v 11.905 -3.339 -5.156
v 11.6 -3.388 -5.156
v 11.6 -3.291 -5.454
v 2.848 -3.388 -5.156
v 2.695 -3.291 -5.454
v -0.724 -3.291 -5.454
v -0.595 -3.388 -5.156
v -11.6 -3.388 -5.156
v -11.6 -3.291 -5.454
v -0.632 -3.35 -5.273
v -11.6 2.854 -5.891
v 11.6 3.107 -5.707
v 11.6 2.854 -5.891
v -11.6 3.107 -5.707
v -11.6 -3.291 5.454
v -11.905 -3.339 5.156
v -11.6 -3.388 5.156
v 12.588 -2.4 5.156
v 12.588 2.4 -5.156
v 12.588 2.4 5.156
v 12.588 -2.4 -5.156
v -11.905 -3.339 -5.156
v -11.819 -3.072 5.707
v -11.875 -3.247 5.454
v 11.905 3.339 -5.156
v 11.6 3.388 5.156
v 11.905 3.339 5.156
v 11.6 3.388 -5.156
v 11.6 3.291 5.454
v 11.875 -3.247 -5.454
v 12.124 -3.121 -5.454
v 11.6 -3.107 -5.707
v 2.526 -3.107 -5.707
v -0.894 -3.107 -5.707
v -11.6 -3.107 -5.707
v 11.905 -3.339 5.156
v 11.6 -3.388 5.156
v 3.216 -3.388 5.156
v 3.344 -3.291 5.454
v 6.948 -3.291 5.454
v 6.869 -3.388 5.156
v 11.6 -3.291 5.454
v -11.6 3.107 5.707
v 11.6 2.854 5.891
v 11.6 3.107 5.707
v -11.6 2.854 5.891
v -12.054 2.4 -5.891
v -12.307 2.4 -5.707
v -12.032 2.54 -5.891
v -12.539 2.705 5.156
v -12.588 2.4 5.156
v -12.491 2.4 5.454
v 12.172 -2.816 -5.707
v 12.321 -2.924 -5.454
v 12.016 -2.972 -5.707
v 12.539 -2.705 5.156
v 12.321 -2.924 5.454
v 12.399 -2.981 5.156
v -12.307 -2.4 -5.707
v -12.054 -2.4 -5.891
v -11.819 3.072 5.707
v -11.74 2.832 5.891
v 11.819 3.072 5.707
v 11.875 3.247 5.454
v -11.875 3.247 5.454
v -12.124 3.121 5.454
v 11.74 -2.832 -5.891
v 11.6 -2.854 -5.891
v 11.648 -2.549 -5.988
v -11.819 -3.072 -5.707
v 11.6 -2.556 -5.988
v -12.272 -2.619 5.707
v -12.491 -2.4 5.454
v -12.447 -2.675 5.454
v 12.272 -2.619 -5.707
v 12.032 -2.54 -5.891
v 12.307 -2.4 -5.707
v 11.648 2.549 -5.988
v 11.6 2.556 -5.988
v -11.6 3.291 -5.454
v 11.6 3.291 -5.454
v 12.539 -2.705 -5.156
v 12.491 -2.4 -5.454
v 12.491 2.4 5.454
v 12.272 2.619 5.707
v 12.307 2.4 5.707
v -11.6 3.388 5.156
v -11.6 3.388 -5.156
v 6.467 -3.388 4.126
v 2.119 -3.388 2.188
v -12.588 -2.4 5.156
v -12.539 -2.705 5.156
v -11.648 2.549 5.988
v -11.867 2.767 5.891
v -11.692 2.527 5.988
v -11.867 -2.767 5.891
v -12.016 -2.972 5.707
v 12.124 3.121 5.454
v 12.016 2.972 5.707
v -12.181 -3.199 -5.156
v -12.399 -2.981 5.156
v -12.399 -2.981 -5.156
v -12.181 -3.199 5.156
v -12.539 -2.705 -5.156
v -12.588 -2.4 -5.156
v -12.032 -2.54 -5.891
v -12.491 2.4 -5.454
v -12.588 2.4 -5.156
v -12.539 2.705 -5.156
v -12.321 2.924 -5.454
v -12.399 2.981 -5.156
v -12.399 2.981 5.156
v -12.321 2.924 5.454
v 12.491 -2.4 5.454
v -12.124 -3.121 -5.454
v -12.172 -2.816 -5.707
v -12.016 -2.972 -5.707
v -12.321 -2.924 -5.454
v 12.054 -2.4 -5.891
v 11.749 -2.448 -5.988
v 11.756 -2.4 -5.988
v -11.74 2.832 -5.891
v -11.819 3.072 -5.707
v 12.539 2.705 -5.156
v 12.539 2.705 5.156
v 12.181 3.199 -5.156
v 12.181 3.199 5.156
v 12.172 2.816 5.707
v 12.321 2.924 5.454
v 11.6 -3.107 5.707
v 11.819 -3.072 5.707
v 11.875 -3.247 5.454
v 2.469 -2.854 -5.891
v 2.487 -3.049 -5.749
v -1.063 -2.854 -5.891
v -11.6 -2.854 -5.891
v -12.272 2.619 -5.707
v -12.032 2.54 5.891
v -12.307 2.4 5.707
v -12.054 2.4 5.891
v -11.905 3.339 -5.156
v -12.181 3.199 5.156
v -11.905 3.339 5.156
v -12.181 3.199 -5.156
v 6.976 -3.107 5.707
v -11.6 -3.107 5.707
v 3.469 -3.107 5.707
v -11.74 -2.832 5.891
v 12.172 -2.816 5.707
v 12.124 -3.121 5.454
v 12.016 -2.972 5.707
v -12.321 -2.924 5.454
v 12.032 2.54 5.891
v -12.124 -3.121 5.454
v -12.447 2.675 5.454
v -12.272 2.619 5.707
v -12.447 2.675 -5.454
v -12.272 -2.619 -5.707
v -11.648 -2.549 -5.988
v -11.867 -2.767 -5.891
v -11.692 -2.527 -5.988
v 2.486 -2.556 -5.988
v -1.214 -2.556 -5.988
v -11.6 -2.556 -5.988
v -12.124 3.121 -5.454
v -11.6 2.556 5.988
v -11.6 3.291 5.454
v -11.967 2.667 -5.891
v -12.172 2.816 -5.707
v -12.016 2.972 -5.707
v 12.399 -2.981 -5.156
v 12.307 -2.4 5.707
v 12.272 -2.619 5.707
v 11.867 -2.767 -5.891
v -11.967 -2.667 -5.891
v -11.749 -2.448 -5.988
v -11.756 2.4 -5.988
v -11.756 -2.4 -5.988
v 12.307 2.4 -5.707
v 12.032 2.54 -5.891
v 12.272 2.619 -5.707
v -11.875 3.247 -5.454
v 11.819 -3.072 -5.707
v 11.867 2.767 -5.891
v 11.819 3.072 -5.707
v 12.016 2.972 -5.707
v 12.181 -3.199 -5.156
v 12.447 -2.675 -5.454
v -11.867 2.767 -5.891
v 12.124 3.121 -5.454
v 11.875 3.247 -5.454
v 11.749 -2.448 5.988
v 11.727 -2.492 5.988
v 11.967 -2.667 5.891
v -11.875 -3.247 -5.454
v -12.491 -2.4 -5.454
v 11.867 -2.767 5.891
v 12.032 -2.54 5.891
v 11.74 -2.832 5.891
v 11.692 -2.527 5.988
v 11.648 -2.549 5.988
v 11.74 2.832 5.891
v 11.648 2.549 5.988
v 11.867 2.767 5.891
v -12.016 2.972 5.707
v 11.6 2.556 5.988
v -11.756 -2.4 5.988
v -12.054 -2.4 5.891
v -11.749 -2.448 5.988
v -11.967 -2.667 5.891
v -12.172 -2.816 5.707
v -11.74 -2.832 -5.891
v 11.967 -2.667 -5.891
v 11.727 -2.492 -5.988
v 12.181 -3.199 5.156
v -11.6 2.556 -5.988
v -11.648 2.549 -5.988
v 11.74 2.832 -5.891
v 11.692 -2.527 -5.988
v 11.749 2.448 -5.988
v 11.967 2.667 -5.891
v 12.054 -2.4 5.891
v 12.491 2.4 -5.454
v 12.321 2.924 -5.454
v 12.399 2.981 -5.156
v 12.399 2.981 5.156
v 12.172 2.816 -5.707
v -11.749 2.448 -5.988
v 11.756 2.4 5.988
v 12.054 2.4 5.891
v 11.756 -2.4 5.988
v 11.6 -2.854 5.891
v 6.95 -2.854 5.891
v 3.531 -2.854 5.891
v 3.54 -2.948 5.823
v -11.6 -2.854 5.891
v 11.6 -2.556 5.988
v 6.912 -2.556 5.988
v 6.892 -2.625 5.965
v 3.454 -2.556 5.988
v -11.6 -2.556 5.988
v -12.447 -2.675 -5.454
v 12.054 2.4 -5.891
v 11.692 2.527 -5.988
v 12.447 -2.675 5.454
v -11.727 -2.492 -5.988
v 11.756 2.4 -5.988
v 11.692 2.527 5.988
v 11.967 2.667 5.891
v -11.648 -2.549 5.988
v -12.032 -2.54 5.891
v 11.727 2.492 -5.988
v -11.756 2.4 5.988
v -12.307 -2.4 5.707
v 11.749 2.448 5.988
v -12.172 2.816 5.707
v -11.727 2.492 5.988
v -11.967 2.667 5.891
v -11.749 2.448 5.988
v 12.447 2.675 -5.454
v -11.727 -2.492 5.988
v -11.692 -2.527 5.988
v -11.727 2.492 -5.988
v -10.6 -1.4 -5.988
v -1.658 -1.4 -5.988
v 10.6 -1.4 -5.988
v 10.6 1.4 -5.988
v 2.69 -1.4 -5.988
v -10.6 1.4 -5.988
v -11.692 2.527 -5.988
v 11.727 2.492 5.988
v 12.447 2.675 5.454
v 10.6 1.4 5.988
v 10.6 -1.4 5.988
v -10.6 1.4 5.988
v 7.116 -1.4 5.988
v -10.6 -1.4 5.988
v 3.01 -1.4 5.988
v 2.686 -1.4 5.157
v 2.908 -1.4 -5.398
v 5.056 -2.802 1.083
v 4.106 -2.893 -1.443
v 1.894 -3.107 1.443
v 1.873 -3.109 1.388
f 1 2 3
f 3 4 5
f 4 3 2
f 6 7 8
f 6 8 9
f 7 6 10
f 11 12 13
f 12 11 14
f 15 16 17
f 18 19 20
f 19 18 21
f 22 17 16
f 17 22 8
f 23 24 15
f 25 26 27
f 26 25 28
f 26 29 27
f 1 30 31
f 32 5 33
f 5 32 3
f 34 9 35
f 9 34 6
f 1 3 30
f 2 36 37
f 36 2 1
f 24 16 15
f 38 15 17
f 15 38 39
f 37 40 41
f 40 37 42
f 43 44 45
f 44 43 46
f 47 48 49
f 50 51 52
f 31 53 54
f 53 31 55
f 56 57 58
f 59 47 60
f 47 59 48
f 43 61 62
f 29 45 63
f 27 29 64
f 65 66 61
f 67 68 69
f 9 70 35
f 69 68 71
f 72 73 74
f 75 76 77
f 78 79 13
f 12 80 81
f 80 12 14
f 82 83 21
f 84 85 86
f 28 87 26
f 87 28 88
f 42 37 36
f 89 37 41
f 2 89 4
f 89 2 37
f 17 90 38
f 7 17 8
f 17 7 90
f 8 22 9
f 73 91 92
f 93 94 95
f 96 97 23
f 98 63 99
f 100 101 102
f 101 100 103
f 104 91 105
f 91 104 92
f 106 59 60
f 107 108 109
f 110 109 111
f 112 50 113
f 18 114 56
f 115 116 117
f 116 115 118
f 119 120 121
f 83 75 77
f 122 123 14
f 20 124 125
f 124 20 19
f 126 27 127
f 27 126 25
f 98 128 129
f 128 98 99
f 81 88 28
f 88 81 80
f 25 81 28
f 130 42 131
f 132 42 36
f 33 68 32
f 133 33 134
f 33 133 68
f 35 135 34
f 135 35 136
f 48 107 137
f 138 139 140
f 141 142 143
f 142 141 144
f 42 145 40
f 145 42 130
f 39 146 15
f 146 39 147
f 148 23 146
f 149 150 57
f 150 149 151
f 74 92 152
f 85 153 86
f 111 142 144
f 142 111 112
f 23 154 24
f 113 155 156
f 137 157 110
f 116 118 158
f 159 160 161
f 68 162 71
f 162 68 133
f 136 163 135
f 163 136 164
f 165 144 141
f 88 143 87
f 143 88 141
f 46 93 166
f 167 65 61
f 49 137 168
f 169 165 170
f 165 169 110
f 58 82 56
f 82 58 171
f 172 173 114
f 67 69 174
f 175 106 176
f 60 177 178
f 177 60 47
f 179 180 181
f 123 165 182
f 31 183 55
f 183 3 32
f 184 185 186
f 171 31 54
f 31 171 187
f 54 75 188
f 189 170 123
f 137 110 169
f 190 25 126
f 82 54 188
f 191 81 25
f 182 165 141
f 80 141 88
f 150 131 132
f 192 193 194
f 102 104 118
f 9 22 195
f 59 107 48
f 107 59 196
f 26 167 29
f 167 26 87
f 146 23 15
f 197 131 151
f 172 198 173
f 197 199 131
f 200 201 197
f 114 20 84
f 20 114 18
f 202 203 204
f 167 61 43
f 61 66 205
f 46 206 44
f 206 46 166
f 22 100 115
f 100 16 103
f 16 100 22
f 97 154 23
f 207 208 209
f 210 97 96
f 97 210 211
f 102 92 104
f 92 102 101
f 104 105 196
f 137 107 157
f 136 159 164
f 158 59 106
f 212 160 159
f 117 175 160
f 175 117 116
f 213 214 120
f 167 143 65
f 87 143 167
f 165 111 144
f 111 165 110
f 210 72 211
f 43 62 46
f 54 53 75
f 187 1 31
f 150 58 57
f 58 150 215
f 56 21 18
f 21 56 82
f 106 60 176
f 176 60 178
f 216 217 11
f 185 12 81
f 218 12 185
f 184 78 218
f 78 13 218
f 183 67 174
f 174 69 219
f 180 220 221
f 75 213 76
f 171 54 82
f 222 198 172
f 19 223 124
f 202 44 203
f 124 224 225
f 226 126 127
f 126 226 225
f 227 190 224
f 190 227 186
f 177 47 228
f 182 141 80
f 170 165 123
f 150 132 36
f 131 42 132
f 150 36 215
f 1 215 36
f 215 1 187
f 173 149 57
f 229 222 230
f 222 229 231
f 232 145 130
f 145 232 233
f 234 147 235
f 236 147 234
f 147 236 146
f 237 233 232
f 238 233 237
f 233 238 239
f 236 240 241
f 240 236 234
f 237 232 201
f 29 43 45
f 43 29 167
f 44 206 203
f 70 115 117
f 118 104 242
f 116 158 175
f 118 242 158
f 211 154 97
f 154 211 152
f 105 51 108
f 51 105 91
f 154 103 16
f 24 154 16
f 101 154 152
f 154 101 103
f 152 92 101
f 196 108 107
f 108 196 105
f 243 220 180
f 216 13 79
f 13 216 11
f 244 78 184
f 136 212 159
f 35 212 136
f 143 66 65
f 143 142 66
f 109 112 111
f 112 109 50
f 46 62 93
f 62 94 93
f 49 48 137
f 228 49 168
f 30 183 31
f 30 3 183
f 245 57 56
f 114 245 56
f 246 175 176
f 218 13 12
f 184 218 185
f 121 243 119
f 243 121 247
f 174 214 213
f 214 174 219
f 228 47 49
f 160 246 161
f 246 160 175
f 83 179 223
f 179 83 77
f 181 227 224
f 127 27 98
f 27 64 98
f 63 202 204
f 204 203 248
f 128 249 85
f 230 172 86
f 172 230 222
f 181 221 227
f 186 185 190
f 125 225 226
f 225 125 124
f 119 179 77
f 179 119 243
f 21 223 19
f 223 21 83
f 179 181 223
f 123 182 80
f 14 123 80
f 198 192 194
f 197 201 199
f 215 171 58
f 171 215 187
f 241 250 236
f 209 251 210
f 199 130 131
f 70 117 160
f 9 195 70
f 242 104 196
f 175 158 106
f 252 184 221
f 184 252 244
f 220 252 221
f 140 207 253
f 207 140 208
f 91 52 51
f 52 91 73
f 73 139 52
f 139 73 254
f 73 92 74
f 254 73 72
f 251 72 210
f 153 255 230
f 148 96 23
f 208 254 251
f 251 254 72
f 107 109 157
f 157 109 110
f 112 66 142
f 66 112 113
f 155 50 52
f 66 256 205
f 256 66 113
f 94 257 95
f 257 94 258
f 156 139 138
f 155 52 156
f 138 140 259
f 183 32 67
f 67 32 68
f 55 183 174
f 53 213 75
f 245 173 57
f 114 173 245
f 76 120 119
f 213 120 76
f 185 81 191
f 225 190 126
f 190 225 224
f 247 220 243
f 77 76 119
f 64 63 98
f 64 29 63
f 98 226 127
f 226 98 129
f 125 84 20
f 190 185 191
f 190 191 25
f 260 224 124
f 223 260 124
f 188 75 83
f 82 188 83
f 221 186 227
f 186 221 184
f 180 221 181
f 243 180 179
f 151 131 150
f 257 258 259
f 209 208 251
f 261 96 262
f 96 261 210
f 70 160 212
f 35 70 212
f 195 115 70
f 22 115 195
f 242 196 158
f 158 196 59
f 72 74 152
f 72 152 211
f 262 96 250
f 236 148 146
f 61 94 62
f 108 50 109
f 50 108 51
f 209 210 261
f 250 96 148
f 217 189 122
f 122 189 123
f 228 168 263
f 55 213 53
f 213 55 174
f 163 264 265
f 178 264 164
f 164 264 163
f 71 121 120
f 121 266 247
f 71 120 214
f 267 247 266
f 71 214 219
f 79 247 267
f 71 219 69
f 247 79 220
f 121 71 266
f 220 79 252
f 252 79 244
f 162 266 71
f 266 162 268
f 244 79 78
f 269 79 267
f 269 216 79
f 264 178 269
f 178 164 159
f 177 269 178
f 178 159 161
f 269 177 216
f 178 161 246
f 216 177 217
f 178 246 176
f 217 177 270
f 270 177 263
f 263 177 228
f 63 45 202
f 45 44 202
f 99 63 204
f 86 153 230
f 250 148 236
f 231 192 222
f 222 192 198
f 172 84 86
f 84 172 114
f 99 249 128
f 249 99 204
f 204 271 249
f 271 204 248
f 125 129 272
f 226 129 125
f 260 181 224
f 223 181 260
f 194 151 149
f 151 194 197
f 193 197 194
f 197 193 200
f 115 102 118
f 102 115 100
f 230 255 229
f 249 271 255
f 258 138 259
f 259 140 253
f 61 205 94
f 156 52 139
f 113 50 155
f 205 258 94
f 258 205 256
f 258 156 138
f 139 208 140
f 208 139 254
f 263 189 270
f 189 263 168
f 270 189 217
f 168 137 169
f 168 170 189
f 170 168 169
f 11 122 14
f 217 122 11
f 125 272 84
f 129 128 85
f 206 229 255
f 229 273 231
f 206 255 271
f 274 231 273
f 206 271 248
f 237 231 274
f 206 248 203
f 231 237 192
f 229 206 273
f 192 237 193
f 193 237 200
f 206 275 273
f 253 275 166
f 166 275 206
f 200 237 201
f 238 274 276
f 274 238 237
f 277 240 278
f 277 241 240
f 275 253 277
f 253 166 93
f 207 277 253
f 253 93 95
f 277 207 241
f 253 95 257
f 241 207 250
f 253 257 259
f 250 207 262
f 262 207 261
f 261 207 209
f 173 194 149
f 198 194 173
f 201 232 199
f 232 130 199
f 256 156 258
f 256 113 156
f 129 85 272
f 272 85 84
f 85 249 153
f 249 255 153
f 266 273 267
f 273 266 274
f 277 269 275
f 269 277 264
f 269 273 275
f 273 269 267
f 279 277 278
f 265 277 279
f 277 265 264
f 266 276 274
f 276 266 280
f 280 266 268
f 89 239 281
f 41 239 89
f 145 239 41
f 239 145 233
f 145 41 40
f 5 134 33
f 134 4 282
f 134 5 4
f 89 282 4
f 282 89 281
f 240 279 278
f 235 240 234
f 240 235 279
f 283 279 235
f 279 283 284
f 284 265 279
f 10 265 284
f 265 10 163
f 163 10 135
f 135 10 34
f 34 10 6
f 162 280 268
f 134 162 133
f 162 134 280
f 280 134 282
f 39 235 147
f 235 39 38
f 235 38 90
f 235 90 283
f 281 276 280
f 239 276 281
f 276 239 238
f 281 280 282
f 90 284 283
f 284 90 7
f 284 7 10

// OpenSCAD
x=20.5 + 0.7;
y=2.5 + 0.3;
z=10;

difference() {
    // body
    minkowski() {
        cube([x+2, y+2, z], center=true);
        sphere(r=1, $fn=20);
    }

    // inner hole
    cube([x, y, z+4], center=true);

    // opening
    translate([3, -3, 0])
        rotate([0, 20, 21])
        cube([3, 6.5, z+10], center=true);
    translate([3, -3, 0])
        rotate([0, 20, -10])
        cube([3, 6, z+10], center=true);
}
